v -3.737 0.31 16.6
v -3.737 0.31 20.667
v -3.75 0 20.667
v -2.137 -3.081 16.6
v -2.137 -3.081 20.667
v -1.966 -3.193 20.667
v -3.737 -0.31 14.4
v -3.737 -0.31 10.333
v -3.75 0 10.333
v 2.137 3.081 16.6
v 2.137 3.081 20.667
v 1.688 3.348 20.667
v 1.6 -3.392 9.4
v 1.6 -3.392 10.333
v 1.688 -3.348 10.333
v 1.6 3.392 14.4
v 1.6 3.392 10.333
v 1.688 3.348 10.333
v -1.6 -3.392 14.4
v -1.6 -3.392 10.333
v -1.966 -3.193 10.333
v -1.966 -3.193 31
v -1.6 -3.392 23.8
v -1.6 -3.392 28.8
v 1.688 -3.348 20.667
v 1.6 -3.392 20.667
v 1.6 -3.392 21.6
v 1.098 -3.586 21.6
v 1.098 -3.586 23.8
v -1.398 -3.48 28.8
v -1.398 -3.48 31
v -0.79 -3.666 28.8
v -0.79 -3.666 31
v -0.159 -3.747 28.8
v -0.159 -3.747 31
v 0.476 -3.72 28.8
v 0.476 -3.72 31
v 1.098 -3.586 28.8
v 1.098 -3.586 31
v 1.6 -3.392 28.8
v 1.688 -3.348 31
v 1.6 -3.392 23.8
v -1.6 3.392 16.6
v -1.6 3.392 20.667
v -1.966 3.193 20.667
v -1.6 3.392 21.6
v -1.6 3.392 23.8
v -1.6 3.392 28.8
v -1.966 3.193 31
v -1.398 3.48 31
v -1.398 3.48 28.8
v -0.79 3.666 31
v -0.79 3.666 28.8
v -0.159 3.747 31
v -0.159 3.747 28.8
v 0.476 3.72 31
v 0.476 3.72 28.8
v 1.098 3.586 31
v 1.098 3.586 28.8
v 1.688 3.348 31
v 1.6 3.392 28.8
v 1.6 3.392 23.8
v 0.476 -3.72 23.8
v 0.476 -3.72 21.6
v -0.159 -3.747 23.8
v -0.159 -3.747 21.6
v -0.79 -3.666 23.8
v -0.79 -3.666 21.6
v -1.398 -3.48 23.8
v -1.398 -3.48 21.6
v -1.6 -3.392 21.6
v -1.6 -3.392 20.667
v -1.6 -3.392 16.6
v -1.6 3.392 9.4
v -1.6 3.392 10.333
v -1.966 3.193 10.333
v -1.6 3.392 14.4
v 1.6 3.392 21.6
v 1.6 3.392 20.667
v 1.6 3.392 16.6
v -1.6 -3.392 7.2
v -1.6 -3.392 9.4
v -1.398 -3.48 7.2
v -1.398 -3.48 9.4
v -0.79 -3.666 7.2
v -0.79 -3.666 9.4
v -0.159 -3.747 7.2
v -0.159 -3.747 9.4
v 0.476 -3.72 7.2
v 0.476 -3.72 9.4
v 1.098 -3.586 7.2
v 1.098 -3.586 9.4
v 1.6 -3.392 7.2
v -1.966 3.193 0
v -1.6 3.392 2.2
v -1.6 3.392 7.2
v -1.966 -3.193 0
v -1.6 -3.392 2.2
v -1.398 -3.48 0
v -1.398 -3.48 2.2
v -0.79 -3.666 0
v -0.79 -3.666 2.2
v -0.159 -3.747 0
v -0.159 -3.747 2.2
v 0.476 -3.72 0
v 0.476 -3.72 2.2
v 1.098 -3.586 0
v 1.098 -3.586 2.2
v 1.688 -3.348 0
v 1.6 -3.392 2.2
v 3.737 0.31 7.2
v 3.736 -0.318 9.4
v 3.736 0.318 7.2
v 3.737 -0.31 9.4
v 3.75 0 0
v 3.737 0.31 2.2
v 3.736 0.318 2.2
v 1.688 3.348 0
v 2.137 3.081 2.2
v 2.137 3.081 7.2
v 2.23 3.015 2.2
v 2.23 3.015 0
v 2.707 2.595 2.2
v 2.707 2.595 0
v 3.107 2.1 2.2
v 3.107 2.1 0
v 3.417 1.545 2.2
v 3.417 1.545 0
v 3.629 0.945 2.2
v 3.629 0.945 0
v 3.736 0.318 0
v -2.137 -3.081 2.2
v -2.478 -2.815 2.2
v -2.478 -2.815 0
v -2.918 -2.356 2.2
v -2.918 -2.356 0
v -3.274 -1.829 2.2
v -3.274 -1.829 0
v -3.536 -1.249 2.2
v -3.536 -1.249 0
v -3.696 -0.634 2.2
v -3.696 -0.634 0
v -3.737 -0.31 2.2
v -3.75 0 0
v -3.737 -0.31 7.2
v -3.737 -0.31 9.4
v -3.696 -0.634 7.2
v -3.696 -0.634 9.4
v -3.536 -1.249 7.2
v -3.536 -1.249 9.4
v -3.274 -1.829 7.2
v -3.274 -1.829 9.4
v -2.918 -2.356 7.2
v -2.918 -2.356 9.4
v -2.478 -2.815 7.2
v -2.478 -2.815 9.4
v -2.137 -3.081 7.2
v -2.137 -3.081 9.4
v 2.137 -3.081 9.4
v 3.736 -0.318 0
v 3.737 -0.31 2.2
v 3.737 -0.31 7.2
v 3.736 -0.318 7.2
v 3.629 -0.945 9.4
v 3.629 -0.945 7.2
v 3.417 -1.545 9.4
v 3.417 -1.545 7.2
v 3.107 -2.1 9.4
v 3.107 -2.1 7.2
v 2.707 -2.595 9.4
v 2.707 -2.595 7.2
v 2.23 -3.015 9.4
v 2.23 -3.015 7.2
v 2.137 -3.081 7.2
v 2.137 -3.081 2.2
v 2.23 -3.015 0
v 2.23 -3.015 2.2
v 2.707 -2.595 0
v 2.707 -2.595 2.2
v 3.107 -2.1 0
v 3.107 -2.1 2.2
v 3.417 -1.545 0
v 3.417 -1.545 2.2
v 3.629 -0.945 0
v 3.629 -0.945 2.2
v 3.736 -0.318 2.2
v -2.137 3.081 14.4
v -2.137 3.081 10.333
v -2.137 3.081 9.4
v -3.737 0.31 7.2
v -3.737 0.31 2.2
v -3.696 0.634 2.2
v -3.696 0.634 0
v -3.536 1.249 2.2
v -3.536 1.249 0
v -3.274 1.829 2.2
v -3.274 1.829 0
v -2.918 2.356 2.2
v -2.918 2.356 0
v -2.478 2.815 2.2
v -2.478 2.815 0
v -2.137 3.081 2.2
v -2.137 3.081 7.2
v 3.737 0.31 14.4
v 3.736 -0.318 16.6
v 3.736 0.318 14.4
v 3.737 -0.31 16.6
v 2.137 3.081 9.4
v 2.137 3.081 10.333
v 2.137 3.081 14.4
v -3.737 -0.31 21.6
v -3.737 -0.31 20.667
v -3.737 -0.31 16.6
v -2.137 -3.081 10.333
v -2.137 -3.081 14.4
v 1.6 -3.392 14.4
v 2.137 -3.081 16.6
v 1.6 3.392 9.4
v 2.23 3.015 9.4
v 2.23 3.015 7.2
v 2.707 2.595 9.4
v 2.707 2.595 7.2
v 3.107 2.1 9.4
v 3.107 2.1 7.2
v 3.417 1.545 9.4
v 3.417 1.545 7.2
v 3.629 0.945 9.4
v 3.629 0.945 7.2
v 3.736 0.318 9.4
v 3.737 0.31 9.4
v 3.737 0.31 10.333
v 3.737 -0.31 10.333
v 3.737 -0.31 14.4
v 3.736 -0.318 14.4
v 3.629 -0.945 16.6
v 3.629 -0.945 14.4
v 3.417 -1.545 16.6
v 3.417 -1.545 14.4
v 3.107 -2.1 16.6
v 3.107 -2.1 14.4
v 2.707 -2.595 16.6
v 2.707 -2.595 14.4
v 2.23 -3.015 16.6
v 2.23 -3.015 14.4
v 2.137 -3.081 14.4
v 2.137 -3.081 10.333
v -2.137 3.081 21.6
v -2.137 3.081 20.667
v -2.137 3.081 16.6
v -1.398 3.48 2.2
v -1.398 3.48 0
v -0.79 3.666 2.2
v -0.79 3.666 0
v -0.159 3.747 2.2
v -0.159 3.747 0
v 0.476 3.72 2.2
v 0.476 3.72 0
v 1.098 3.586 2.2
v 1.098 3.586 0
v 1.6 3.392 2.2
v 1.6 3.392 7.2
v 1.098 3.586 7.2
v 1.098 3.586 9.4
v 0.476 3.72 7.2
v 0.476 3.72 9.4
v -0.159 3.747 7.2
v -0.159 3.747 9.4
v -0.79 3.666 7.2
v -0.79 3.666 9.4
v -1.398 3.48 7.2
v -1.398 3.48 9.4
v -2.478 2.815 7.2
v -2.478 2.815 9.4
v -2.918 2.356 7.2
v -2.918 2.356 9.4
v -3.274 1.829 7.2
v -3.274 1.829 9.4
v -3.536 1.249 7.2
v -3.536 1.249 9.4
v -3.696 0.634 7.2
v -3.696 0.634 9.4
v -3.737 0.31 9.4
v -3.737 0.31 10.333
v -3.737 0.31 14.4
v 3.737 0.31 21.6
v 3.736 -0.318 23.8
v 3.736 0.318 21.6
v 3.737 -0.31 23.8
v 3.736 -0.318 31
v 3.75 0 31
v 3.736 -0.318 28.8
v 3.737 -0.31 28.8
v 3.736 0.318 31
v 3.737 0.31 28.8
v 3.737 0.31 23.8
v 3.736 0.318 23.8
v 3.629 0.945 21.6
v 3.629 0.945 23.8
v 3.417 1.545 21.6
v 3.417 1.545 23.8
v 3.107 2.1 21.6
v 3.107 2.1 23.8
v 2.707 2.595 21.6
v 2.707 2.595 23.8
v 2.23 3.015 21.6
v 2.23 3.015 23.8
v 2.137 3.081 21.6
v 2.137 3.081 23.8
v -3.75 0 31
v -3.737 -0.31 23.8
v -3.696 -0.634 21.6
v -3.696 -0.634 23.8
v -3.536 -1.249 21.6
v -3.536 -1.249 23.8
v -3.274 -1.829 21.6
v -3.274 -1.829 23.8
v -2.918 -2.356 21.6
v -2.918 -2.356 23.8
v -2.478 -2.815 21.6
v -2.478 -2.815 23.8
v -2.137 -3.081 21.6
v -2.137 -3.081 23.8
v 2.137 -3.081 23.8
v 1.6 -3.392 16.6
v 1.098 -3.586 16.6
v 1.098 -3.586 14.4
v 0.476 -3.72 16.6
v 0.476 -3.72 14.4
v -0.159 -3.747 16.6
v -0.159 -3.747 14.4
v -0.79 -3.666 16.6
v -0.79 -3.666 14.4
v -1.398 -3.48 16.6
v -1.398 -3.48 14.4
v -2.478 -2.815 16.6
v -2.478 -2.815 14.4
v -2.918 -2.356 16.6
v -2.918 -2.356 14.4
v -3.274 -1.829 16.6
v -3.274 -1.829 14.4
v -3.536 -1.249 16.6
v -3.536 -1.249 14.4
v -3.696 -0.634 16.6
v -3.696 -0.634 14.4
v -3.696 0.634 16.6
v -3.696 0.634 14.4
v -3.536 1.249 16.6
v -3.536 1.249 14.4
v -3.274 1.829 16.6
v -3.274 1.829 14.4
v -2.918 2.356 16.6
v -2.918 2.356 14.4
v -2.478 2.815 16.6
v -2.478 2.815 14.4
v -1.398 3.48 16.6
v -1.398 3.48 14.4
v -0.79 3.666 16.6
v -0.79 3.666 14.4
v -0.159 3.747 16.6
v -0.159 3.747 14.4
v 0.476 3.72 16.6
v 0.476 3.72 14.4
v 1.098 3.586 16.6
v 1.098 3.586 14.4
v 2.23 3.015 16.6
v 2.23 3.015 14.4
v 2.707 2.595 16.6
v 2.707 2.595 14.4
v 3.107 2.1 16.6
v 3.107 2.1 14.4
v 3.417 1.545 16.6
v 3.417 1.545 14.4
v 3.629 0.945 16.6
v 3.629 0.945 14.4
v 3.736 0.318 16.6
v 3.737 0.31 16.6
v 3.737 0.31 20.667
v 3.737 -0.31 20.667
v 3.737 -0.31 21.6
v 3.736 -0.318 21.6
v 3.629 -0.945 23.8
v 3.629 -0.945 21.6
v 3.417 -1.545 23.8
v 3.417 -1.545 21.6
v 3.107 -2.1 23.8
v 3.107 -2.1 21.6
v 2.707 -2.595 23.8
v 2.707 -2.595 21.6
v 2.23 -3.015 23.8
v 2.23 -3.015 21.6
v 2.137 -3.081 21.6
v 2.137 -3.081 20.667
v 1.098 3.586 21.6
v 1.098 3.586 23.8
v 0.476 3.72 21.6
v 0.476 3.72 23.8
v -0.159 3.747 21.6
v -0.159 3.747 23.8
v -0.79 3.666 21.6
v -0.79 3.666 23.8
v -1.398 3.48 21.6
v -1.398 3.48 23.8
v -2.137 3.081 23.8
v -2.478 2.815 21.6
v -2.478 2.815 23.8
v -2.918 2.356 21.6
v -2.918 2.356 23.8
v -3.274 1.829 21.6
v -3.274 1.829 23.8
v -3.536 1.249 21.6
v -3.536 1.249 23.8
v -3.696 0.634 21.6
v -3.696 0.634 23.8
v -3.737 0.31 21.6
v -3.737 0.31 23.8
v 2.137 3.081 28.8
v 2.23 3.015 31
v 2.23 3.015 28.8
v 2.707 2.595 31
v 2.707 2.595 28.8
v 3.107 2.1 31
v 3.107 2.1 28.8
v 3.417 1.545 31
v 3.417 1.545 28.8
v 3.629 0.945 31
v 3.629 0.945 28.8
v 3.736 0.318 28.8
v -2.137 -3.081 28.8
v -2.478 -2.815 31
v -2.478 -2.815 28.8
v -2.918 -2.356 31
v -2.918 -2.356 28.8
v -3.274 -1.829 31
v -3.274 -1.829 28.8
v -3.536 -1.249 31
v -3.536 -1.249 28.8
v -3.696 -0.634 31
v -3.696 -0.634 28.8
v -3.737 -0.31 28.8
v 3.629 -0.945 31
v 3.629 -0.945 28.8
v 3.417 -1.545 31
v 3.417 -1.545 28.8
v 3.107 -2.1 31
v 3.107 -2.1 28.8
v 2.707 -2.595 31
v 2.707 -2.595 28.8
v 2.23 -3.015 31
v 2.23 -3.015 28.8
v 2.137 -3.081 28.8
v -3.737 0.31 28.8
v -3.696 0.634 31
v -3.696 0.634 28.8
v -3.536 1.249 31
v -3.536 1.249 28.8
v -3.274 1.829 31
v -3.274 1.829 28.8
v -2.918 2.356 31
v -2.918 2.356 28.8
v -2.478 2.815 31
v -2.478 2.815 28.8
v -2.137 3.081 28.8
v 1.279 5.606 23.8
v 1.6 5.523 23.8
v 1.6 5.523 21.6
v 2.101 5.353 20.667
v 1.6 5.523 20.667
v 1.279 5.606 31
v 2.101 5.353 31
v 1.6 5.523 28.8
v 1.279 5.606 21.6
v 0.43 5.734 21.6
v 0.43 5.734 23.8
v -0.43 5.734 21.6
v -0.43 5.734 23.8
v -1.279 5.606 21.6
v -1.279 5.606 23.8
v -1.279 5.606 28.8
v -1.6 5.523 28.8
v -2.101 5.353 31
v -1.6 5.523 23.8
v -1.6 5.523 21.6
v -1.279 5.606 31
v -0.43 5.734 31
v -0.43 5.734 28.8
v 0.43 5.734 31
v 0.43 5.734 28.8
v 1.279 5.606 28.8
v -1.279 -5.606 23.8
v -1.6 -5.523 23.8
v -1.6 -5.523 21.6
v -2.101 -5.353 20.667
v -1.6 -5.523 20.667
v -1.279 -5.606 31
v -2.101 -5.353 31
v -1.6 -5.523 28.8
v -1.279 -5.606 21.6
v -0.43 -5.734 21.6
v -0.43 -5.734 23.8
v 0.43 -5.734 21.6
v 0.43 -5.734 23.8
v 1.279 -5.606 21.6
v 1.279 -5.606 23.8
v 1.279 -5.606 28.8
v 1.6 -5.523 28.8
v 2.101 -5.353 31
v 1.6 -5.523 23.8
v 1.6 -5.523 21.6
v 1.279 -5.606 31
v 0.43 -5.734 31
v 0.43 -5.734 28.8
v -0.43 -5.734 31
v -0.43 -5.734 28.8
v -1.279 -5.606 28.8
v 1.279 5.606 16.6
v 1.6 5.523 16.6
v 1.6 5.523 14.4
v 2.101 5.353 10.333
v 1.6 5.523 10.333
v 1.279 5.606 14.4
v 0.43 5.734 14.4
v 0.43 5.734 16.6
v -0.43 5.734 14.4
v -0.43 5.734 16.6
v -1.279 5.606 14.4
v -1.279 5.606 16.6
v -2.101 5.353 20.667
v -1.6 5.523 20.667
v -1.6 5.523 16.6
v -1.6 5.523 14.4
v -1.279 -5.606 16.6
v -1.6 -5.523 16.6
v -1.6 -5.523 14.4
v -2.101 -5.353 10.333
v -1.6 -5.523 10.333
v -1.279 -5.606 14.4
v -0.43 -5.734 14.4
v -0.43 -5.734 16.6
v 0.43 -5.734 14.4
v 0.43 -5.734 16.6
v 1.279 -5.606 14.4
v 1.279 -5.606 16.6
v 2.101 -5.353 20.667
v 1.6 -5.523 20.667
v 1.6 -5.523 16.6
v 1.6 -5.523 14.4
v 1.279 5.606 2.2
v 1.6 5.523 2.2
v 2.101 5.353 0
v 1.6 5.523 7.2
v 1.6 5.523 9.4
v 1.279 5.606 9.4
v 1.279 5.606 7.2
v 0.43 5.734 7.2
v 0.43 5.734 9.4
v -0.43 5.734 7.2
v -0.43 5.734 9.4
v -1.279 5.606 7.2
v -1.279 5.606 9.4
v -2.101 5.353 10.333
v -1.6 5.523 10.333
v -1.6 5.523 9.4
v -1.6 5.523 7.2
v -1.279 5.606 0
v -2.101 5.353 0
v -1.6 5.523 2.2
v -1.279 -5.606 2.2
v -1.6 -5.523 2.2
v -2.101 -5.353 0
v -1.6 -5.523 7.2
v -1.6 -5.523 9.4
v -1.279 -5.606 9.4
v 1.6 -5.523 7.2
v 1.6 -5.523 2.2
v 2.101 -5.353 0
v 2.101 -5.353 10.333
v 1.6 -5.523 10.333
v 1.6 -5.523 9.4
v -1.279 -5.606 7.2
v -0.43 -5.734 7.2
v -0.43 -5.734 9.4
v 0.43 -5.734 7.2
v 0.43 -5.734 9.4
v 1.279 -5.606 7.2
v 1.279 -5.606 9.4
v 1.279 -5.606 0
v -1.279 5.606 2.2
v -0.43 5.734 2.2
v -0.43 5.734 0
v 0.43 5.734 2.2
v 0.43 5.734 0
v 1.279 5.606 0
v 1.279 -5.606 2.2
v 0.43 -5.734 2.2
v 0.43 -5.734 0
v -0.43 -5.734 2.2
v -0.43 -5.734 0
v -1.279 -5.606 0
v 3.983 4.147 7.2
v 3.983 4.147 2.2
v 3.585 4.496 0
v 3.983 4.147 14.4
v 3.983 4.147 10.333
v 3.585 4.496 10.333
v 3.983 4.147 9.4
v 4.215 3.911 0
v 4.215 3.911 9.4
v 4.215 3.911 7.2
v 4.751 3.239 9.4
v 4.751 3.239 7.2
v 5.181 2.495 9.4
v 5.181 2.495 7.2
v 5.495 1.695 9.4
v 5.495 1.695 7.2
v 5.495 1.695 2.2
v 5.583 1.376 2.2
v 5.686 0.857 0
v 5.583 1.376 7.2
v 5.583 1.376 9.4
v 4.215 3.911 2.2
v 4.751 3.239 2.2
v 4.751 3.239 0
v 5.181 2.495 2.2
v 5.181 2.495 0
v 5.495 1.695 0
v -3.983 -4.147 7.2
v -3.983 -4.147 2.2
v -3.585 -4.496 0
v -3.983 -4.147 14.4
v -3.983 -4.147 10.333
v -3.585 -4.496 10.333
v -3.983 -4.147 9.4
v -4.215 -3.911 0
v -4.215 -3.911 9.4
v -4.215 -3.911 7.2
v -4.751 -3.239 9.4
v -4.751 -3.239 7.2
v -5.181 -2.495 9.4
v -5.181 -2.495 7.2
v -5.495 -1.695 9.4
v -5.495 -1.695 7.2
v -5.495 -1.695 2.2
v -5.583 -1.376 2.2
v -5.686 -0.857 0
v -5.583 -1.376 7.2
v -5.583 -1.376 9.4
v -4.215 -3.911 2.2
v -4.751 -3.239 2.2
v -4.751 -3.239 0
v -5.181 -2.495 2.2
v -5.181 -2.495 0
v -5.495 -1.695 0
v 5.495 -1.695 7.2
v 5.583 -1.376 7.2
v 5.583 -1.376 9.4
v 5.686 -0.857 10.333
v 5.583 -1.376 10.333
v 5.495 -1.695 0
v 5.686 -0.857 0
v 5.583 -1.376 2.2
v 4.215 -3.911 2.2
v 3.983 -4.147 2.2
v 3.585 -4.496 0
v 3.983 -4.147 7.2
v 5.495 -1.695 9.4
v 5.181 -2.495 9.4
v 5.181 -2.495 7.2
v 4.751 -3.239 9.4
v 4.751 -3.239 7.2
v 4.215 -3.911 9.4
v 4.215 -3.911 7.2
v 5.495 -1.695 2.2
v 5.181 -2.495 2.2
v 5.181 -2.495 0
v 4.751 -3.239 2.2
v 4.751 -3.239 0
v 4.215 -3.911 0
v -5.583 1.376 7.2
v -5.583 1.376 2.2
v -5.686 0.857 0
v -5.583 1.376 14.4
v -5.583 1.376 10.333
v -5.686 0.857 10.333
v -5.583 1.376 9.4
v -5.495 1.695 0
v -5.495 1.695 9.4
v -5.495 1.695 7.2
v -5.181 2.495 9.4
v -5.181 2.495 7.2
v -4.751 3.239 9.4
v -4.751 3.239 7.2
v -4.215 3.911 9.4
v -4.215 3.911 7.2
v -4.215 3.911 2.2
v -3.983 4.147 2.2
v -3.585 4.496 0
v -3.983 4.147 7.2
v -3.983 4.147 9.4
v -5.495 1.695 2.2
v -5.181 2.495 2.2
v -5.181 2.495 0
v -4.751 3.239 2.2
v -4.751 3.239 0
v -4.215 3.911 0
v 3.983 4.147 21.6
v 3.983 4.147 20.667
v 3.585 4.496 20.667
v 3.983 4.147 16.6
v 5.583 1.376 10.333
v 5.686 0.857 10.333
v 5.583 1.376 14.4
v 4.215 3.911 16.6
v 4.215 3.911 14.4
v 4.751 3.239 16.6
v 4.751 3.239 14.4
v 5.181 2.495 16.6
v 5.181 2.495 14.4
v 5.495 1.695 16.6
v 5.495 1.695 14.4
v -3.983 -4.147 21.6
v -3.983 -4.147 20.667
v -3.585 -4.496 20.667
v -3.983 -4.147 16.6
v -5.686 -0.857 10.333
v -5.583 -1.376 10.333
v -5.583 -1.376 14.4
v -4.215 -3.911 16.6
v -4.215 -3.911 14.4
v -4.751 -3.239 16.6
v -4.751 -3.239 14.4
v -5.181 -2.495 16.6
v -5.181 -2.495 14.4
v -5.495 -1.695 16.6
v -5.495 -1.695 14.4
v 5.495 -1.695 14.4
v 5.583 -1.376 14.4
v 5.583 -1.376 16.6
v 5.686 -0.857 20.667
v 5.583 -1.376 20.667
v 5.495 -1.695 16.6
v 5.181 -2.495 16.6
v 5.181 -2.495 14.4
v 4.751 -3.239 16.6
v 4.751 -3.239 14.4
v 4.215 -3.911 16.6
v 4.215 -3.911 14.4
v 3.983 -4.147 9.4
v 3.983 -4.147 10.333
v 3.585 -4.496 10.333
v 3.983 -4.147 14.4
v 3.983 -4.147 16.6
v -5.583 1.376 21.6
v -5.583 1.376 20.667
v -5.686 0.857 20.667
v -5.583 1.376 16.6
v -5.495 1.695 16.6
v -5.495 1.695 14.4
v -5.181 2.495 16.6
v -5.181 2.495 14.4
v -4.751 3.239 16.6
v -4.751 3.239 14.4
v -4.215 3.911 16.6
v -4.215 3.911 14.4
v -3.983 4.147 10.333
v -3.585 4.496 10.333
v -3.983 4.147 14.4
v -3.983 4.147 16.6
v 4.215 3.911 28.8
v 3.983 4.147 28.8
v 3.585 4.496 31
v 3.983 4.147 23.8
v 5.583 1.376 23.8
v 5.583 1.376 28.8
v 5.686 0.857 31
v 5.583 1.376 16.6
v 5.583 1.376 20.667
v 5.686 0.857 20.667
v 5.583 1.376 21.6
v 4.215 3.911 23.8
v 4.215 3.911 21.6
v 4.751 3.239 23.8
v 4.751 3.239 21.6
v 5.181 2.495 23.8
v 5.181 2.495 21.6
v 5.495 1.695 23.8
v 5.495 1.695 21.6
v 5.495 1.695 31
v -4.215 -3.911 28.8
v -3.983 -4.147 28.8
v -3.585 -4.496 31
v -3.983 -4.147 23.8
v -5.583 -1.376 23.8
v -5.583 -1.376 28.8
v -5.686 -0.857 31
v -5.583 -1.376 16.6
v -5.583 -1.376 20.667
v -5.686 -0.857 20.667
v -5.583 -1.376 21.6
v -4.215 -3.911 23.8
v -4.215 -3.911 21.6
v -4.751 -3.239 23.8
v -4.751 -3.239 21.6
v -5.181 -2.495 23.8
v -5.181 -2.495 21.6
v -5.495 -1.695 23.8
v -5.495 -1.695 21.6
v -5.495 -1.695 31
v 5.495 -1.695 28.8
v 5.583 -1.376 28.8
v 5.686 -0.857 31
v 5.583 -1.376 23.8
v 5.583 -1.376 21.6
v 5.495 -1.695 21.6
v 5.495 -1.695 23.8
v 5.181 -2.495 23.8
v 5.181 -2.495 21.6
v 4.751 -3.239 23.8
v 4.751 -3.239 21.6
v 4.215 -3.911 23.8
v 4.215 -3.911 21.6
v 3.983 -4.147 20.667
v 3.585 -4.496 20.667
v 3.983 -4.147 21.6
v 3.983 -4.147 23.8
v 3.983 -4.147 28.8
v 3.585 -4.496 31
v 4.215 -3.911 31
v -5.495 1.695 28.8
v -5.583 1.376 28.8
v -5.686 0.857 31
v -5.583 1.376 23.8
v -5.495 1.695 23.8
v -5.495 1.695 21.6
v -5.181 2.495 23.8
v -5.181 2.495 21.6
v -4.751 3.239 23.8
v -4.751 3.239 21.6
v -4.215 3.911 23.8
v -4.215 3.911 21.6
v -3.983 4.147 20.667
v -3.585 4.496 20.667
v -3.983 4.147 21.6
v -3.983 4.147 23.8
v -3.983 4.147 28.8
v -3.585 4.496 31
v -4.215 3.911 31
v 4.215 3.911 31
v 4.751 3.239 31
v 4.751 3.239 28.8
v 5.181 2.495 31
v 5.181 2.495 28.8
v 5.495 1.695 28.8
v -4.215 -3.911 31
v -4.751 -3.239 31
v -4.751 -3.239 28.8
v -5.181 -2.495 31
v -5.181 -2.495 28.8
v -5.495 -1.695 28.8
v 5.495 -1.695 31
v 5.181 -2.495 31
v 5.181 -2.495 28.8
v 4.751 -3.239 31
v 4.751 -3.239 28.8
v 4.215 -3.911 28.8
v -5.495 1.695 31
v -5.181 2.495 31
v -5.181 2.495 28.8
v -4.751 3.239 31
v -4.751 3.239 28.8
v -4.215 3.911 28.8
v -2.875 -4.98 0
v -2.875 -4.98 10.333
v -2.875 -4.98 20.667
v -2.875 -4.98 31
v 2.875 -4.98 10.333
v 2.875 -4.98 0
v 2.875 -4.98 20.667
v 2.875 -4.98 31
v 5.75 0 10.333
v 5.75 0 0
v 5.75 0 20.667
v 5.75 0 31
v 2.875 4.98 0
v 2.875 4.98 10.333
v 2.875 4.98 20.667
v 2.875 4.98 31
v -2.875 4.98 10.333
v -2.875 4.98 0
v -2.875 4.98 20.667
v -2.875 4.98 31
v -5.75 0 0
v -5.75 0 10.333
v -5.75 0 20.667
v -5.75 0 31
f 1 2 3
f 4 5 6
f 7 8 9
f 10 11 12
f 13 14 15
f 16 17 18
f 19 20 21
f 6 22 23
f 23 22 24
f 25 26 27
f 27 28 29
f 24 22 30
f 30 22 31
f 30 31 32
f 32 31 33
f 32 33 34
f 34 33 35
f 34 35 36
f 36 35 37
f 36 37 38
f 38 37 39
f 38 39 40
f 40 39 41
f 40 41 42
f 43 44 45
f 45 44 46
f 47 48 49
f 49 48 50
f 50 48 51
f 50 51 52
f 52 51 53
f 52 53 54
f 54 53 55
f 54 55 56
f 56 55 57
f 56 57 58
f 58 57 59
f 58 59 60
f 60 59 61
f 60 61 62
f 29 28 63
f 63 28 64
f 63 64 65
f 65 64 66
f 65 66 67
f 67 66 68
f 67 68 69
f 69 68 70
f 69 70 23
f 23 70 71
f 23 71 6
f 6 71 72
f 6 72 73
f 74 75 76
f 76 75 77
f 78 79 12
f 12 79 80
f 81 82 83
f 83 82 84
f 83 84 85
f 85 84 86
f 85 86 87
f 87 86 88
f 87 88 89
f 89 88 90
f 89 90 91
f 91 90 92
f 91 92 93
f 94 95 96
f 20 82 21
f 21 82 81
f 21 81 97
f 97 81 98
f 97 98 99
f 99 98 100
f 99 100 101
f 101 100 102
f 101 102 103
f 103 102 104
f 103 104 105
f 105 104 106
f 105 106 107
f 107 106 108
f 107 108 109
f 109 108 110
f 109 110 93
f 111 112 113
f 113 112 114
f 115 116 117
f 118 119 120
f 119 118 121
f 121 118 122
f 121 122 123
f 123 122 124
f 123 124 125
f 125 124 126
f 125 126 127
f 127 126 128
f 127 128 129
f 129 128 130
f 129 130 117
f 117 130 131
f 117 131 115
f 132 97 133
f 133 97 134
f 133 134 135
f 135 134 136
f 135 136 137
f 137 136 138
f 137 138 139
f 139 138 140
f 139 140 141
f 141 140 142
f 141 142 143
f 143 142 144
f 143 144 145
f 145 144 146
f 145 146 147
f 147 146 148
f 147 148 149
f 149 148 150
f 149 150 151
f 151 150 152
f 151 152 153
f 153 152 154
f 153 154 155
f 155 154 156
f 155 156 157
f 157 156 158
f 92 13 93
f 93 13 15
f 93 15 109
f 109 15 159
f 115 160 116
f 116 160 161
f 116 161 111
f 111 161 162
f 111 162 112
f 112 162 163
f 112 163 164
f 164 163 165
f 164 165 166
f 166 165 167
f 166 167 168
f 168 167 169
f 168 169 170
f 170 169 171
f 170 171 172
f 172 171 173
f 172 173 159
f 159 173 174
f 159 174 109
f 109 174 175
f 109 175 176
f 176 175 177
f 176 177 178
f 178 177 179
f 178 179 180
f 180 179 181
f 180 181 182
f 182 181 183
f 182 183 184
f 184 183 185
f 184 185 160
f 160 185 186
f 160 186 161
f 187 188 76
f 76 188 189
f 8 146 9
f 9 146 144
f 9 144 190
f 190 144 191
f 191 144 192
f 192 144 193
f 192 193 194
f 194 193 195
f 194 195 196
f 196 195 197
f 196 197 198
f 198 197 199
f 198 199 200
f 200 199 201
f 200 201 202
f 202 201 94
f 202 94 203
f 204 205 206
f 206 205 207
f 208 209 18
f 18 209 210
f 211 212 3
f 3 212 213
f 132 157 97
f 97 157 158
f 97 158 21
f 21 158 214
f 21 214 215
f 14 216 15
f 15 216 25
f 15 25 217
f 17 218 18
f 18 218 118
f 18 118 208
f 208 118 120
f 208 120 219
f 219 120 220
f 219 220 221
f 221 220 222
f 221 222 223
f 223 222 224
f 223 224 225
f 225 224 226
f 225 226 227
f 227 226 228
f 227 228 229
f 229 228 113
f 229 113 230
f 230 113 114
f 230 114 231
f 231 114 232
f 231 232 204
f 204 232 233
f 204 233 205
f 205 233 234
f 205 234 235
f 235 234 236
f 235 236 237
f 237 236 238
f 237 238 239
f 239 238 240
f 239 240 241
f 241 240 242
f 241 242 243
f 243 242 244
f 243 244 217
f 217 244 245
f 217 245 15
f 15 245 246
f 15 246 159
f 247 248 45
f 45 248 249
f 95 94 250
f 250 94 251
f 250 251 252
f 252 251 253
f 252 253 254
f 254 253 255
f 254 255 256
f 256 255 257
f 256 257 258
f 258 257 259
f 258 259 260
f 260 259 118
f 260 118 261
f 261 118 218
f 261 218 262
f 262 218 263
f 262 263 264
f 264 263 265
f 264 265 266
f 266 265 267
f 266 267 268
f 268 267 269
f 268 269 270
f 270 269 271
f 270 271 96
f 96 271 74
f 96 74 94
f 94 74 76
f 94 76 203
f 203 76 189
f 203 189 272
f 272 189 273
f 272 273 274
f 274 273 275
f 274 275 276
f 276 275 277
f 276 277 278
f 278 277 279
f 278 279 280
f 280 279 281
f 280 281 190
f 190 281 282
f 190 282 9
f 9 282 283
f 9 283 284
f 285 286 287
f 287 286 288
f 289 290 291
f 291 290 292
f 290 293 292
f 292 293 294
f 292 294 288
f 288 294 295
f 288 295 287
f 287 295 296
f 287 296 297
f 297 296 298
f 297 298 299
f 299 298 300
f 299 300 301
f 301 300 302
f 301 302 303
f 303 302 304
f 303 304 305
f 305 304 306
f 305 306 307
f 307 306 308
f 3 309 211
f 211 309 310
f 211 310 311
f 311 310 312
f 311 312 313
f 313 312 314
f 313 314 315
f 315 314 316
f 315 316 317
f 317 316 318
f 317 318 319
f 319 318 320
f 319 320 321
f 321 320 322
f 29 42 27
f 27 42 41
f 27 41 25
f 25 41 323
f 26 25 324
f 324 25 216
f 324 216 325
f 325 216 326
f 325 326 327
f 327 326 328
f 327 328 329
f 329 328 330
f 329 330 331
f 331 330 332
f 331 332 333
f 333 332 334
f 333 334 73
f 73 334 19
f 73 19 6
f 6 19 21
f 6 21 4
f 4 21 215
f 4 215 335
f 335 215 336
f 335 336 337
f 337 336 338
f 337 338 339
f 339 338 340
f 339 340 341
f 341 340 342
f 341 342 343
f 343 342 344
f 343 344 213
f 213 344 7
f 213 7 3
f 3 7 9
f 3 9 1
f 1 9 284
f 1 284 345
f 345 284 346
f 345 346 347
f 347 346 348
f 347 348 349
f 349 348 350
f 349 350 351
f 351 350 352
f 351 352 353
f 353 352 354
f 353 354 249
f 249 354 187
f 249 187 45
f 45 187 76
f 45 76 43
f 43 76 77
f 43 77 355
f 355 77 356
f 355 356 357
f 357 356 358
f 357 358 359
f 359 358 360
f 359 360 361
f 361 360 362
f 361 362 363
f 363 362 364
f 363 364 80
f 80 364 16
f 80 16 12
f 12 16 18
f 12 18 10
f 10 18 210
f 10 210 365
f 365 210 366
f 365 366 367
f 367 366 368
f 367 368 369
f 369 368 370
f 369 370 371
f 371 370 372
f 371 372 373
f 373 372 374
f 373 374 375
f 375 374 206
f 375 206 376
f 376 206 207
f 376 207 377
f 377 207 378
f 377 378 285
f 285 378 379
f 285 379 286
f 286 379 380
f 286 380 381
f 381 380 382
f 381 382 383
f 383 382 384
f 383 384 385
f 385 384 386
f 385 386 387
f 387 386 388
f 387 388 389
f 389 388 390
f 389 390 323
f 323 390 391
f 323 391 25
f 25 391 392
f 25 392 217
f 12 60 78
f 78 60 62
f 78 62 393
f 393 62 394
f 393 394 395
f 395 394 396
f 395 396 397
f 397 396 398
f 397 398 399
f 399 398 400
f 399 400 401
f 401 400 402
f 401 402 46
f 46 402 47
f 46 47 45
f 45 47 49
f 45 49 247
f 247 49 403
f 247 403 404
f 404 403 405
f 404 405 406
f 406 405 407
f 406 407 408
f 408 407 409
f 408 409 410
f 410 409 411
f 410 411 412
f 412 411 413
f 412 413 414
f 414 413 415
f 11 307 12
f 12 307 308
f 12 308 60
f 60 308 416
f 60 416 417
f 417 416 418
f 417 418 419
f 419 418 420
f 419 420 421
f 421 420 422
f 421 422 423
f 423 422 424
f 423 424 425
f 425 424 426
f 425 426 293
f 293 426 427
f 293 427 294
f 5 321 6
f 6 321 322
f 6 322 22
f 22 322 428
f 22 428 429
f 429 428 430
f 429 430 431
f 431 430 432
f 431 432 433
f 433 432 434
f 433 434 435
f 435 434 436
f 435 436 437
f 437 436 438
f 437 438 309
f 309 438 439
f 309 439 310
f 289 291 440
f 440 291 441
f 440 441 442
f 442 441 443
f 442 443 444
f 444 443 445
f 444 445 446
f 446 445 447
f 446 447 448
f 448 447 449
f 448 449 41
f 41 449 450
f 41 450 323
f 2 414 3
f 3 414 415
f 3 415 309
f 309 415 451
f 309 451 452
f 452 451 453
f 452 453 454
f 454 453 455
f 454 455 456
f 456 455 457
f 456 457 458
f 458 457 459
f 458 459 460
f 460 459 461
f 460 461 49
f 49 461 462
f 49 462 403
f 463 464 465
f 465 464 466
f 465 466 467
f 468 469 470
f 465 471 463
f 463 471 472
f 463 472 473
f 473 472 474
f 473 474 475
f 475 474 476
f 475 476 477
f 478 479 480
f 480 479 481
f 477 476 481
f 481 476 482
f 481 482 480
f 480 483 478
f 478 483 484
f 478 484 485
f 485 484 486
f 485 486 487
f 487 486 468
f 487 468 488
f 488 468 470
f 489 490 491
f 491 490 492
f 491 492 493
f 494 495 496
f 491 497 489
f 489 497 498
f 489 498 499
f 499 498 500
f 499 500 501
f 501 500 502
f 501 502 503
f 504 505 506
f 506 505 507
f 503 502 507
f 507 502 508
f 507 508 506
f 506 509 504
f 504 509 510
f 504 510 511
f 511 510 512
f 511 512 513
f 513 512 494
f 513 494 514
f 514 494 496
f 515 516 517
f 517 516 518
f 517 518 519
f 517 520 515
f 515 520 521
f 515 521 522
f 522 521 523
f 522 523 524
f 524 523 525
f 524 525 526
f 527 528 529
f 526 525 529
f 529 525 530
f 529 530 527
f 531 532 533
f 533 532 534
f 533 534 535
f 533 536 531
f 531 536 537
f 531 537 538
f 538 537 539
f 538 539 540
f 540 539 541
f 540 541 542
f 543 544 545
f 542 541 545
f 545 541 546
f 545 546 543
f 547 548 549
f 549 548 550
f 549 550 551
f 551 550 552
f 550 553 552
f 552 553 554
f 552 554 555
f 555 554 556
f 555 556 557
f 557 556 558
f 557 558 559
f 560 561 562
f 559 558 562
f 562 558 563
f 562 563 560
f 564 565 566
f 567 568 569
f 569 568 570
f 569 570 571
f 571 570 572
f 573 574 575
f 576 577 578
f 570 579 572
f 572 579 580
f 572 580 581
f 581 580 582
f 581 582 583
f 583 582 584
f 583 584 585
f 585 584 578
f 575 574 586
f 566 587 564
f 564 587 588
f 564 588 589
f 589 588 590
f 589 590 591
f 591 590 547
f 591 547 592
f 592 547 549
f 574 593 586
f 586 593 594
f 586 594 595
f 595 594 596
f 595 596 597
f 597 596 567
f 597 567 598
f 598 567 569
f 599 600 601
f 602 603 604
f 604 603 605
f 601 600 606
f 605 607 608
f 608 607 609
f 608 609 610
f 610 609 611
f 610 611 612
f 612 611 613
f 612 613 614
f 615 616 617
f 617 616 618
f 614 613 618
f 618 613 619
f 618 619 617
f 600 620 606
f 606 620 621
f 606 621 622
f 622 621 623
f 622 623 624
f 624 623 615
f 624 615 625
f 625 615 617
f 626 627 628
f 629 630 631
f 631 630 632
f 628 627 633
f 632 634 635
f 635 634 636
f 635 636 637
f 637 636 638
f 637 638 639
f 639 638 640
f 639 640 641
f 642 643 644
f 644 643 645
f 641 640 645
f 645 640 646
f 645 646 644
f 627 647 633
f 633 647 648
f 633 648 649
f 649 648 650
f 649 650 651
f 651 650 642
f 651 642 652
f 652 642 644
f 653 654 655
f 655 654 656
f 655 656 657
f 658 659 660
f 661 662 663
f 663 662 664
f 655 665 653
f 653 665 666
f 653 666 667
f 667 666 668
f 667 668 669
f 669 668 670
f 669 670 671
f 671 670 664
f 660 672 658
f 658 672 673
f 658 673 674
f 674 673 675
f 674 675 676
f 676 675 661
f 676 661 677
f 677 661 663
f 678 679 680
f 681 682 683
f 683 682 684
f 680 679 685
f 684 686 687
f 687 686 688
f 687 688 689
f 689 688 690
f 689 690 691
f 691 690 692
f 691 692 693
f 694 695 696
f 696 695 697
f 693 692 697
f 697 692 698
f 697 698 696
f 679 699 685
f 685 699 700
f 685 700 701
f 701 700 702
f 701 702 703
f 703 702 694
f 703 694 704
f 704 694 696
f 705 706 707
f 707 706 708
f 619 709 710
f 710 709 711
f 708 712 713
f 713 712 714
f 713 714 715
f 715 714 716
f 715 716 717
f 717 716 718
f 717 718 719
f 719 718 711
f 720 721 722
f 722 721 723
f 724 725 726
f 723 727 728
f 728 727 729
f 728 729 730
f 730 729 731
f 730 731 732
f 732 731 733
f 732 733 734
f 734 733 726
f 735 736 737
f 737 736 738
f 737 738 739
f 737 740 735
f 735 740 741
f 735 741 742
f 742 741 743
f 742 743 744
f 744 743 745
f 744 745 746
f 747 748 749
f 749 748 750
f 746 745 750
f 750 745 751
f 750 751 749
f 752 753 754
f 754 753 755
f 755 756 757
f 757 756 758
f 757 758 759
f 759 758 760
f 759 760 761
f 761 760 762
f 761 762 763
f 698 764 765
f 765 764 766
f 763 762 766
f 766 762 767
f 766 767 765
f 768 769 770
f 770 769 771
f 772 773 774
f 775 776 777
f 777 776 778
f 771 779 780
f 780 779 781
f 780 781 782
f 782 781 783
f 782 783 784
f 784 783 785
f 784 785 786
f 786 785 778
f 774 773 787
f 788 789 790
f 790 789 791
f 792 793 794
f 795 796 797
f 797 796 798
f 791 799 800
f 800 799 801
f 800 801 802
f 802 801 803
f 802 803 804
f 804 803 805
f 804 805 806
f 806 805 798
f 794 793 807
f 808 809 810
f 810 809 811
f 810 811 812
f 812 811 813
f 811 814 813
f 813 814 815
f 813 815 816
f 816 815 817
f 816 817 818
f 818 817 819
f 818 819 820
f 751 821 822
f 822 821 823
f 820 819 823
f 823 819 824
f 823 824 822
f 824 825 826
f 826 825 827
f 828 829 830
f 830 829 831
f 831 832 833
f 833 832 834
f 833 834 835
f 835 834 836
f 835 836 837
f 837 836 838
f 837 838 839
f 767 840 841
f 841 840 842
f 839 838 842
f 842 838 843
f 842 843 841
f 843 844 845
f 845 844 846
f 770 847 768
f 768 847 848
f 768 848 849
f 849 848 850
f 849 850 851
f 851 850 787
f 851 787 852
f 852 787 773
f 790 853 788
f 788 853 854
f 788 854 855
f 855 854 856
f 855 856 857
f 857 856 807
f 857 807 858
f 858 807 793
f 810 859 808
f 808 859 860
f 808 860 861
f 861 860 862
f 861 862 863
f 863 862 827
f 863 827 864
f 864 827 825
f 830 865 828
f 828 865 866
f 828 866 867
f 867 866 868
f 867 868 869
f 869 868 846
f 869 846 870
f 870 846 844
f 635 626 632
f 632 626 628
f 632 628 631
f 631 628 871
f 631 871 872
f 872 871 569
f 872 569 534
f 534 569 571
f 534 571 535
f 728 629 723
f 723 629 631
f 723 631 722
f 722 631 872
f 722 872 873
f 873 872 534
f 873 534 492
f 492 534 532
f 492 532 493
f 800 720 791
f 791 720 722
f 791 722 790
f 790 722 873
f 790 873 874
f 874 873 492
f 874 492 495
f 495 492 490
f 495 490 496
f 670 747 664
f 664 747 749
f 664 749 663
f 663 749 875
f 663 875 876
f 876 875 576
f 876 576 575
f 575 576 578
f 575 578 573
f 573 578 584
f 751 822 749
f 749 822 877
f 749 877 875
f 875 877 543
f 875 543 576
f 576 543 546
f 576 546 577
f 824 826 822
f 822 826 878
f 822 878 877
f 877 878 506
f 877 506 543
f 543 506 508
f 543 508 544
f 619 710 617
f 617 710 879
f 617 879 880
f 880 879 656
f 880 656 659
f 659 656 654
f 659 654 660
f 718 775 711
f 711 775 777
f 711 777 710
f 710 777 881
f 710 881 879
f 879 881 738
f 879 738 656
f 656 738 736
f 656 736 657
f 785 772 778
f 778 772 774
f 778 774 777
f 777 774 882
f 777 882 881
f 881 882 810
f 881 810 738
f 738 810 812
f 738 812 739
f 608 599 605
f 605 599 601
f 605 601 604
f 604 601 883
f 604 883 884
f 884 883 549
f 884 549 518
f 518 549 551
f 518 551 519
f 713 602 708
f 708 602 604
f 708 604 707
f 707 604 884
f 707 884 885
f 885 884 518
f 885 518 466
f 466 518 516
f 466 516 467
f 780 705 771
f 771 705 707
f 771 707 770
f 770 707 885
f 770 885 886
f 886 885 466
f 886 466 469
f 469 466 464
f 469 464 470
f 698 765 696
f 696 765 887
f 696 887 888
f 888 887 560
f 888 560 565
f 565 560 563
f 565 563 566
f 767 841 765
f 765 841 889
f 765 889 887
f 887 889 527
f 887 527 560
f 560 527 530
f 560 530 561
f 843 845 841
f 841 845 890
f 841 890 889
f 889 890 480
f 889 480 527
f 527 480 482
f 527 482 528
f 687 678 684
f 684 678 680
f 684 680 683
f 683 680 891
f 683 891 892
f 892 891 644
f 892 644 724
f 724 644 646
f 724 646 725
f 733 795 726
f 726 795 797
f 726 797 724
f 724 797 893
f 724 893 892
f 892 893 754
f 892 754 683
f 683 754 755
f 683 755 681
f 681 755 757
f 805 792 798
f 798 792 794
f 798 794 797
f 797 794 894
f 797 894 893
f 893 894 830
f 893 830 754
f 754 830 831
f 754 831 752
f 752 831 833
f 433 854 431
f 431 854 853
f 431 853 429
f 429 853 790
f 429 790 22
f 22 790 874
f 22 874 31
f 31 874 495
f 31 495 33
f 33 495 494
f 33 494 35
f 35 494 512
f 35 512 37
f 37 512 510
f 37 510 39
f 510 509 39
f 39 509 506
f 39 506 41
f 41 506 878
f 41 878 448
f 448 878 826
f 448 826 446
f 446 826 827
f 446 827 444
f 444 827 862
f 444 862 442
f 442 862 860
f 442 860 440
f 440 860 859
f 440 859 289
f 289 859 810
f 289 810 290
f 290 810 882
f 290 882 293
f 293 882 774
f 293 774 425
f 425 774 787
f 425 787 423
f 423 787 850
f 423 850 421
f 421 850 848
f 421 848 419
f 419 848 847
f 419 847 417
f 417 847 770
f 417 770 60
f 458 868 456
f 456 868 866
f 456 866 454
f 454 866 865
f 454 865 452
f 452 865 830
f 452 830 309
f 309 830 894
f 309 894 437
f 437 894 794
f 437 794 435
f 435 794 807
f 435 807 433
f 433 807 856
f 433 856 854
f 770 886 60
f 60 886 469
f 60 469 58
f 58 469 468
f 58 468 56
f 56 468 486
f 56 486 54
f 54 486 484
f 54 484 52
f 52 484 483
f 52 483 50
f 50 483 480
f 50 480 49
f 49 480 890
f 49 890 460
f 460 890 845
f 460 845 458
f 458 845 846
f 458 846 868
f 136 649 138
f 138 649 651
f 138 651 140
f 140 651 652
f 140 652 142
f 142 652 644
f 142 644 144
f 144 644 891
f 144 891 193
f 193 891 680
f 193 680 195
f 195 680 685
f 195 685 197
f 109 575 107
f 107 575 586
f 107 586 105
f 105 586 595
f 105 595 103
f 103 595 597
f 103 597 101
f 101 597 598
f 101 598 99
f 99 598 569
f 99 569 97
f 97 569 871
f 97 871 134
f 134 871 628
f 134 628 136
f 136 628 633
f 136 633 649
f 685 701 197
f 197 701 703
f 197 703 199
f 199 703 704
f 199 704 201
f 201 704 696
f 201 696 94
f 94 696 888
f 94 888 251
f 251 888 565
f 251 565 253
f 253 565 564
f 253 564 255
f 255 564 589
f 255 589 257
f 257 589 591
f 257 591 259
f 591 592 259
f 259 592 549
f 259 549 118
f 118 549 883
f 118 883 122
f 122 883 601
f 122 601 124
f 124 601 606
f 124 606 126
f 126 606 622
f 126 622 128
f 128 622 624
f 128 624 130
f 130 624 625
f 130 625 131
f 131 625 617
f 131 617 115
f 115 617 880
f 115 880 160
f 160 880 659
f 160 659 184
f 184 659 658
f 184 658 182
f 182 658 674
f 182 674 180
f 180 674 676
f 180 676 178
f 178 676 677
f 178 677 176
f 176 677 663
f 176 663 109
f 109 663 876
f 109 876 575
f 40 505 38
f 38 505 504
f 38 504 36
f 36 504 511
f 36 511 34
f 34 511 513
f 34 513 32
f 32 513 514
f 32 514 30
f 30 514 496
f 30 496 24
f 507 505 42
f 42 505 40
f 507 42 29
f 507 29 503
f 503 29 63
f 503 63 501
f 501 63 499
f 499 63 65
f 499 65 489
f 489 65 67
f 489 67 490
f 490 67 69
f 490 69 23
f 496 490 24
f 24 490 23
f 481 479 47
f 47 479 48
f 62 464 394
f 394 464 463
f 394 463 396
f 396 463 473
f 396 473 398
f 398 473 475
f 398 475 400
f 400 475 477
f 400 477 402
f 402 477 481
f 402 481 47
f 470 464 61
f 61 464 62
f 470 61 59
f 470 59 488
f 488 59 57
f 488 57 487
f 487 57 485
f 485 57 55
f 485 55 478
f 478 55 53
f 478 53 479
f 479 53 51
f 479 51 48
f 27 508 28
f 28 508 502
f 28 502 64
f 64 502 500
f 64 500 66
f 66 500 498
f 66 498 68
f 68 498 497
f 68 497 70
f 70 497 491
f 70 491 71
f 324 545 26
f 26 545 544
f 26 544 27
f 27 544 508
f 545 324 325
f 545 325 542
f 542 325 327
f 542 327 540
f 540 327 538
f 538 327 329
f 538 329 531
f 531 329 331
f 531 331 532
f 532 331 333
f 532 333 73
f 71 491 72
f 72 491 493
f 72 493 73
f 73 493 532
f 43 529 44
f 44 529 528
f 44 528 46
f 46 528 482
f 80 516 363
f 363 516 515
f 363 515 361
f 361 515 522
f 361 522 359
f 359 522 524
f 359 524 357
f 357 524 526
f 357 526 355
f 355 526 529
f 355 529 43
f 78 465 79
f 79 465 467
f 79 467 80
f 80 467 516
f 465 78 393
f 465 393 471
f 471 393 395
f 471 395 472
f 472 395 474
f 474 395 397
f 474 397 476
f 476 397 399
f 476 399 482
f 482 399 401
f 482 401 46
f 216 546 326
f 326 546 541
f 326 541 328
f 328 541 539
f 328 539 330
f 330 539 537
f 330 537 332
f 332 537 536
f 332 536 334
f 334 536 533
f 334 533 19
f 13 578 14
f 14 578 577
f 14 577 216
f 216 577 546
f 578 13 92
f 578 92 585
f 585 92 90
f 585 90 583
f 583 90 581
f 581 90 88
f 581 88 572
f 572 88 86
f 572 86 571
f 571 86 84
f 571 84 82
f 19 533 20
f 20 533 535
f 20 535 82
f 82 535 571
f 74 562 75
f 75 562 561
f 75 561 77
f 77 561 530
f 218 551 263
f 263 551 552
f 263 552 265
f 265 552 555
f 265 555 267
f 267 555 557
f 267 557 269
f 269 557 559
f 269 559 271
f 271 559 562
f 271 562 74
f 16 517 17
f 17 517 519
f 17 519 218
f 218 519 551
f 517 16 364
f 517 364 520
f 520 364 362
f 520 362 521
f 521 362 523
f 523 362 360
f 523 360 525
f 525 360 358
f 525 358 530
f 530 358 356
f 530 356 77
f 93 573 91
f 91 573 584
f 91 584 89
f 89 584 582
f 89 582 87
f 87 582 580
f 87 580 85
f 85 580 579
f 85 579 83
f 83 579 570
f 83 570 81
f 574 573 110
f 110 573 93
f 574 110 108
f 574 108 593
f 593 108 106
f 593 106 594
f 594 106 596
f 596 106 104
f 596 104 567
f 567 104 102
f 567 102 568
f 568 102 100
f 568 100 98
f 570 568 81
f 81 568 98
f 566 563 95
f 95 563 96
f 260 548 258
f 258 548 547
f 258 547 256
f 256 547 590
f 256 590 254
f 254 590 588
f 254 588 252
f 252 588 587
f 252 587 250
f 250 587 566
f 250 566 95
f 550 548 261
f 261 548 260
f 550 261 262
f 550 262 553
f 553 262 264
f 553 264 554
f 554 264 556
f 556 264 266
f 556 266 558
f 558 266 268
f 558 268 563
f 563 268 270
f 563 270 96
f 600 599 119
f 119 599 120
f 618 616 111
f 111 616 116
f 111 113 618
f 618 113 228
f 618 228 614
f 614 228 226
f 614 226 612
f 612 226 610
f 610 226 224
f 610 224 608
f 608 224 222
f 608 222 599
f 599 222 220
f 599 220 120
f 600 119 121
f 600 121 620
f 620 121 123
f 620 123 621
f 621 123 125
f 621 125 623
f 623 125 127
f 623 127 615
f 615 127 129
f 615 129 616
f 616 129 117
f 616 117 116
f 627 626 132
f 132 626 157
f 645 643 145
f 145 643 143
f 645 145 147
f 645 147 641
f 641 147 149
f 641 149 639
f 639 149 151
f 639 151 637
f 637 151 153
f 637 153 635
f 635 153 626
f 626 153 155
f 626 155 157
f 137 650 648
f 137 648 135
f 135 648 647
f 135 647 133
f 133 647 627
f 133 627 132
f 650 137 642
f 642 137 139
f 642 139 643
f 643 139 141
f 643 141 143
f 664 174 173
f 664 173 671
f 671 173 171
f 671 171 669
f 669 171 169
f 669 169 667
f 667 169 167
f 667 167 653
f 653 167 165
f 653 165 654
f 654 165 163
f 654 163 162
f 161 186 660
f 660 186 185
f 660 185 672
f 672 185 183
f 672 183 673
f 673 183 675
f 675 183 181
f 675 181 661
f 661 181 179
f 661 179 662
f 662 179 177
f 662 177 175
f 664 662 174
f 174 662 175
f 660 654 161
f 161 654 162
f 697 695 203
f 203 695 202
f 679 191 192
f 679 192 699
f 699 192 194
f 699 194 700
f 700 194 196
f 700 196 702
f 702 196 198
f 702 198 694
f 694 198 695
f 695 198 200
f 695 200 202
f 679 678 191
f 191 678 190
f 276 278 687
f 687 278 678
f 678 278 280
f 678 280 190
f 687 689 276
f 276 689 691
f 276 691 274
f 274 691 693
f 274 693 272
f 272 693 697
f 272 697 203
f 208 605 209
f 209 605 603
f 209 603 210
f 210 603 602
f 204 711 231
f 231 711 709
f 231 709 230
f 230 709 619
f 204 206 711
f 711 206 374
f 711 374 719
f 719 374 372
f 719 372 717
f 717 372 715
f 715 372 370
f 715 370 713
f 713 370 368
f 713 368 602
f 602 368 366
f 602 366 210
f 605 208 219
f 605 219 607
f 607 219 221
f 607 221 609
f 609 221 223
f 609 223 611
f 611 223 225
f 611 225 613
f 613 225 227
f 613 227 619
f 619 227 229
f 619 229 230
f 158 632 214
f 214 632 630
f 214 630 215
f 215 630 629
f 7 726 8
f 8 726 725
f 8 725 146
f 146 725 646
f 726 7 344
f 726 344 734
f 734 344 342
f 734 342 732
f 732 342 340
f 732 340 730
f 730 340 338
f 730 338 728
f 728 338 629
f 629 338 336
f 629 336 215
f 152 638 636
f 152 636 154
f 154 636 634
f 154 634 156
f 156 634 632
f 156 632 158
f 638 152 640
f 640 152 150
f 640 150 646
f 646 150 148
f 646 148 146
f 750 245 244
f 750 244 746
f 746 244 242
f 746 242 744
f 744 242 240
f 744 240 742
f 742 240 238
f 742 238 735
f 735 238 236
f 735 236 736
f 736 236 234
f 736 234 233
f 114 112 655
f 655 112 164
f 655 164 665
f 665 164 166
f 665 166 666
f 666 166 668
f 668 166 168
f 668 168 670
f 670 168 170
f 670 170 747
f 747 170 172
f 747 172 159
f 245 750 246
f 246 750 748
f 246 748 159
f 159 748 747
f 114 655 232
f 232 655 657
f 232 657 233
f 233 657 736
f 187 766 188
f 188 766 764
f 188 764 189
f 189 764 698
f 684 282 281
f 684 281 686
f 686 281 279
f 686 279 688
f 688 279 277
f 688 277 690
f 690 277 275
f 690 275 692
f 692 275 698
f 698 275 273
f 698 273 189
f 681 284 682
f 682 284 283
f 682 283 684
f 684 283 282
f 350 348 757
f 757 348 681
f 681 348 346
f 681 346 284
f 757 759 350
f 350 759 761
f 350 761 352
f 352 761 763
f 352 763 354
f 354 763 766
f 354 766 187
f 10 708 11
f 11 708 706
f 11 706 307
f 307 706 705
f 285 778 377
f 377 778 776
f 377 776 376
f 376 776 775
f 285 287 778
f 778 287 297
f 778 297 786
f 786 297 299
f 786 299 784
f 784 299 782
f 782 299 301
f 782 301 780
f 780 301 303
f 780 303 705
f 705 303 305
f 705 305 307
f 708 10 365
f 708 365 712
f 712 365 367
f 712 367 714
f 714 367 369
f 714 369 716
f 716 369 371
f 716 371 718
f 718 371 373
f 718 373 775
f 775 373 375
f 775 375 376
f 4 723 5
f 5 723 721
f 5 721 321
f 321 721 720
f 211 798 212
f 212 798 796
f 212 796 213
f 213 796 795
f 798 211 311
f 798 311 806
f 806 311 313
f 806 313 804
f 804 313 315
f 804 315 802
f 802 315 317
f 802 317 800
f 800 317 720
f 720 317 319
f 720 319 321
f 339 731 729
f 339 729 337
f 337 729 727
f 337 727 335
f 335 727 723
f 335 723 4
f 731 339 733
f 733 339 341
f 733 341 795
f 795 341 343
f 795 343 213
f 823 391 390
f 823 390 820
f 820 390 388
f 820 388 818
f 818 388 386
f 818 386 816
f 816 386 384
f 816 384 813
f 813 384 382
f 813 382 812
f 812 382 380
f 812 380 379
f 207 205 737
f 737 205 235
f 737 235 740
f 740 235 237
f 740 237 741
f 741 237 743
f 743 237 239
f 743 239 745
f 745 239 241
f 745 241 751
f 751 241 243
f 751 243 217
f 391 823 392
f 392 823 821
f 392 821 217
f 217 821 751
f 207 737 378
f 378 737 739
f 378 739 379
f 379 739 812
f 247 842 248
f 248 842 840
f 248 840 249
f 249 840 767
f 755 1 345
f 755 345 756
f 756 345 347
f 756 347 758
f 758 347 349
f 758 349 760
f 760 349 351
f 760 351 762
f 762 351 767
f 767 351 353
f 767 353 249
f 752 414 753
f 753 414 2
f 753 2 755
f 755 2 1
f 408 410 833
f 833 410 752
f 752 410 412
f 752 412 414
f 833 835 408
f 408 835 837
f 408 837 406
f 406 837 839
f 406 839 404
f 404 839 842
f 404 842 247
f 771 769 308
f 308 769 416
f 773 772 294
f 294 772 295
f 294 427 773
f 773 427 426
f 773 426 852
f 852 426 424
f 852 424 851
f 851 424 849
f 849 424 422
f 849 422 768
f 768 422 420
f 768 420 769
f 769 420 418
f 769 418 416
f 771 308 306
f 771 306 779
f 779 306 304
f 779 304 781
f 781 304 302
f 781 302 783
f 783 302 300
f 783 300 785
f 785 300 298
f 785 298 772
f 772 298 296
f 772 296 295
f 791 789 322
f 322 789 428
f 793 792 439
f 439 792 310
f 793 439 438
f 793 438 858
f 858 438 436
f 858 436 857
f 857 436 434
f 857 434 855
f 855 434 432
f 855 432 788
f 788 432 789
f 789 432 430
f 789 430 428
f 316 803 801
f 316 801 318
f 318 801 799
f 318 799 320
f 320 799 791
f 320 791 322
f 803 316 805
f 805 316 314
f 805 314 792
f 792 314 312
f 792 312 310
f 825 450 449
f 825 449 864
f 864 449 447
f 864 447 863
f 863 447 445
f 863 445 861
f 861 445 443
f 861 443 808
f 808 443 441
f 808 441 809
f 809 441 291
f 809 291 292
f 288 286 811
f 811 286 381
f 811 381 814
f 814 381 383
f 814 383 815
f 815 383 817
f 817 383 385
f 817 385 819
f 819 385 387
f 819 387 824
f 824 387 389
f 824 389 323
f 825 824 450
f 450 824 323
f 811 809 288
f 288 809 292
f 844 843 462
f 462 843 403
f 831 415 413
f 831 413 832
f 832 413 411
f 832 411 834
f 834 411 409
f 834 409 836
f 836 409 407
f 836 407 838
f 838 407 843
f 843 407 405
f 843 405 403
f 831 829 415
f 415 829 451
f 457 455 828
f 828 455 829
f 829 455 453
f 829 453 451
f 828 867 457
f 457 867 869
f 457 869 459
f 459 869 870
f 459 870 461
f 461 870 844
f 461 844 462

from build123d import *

# Parameters (mm, degrees)
SKETCH_1_R               = 5.75
SKETCH_1_R_2             = 4.75
SKETCH_1_R_3             = 3.75
EXTRUDE_1_DEPTH          = 31
SKETCH_2_W               = 3.2
SKETCH_2_H               = 5
CUT_EXTRUDE_1_DEPTH      = 33.048790929
PATTERN_CIRCULAR_1_COUNT = 3


with BuildPart() as part:
    # 草图1 → 凸台-拉伸1 (new body)
    # profile 1 of 2: a face of its own
    with BuildSketch(Plane.XY):
        Circle(SKETCH_1_R)
        Circle(SKETCH_1_R_2, mode=Mode.SUBTRACT)
    # profile 2 of 2: a face of its own
    with BuildSketch(Plane.XY):
        Circle(SKETCH_1_R_2)
        Circle(SKETCH_1_R_3, mode=Mode.SUBTRACT)
    extrude(amount=EXTRUDE_1_DEPTH)

    # 草图2 → 切除-拉伸1 (cut, symmetric)
    with BuildSketch(Plane(origin=(0, 0, 0), x_dir=(1, 0, 0), z_dir=(0, 1, 0))):
        with Locations((0, -4.7)):
            Rectangle(SKETCH_2_W, SKETCH_2_H)
        with Locations((0, -11.9)):
            Rectangle(SKETCH_2_W, SKETCH_2_H)
        with Locations((0, -19.1)):
            Rectangle(SKETCH_2_W, SKETCH_2_H)
        with Locations((0, -26.3)):
            Rectangle(SKETCH_2_W, SKETCH_2_H)
    cut_extrude_1 = extrude(amount=CUT_EXTRUDE_1_DEPTH, both=True, mode=Mode.SUBTRACT)

    # 阵列(圆周)1: 切除-拉伸1 ×3 about axis
    pattern_circular_1_axis = Axis((0, 0, 0), (0, 0, 1))
    for i in range(1, PATTERN_CIRCULAR_1_COUNT):
        add(cut_extrude_1.rotate(pattern_circular_1_axis, i * 360 / PATTERN_CIRCULAR_1_COUNT), mode=Mode.SUBTRACT)


solid = part.part
